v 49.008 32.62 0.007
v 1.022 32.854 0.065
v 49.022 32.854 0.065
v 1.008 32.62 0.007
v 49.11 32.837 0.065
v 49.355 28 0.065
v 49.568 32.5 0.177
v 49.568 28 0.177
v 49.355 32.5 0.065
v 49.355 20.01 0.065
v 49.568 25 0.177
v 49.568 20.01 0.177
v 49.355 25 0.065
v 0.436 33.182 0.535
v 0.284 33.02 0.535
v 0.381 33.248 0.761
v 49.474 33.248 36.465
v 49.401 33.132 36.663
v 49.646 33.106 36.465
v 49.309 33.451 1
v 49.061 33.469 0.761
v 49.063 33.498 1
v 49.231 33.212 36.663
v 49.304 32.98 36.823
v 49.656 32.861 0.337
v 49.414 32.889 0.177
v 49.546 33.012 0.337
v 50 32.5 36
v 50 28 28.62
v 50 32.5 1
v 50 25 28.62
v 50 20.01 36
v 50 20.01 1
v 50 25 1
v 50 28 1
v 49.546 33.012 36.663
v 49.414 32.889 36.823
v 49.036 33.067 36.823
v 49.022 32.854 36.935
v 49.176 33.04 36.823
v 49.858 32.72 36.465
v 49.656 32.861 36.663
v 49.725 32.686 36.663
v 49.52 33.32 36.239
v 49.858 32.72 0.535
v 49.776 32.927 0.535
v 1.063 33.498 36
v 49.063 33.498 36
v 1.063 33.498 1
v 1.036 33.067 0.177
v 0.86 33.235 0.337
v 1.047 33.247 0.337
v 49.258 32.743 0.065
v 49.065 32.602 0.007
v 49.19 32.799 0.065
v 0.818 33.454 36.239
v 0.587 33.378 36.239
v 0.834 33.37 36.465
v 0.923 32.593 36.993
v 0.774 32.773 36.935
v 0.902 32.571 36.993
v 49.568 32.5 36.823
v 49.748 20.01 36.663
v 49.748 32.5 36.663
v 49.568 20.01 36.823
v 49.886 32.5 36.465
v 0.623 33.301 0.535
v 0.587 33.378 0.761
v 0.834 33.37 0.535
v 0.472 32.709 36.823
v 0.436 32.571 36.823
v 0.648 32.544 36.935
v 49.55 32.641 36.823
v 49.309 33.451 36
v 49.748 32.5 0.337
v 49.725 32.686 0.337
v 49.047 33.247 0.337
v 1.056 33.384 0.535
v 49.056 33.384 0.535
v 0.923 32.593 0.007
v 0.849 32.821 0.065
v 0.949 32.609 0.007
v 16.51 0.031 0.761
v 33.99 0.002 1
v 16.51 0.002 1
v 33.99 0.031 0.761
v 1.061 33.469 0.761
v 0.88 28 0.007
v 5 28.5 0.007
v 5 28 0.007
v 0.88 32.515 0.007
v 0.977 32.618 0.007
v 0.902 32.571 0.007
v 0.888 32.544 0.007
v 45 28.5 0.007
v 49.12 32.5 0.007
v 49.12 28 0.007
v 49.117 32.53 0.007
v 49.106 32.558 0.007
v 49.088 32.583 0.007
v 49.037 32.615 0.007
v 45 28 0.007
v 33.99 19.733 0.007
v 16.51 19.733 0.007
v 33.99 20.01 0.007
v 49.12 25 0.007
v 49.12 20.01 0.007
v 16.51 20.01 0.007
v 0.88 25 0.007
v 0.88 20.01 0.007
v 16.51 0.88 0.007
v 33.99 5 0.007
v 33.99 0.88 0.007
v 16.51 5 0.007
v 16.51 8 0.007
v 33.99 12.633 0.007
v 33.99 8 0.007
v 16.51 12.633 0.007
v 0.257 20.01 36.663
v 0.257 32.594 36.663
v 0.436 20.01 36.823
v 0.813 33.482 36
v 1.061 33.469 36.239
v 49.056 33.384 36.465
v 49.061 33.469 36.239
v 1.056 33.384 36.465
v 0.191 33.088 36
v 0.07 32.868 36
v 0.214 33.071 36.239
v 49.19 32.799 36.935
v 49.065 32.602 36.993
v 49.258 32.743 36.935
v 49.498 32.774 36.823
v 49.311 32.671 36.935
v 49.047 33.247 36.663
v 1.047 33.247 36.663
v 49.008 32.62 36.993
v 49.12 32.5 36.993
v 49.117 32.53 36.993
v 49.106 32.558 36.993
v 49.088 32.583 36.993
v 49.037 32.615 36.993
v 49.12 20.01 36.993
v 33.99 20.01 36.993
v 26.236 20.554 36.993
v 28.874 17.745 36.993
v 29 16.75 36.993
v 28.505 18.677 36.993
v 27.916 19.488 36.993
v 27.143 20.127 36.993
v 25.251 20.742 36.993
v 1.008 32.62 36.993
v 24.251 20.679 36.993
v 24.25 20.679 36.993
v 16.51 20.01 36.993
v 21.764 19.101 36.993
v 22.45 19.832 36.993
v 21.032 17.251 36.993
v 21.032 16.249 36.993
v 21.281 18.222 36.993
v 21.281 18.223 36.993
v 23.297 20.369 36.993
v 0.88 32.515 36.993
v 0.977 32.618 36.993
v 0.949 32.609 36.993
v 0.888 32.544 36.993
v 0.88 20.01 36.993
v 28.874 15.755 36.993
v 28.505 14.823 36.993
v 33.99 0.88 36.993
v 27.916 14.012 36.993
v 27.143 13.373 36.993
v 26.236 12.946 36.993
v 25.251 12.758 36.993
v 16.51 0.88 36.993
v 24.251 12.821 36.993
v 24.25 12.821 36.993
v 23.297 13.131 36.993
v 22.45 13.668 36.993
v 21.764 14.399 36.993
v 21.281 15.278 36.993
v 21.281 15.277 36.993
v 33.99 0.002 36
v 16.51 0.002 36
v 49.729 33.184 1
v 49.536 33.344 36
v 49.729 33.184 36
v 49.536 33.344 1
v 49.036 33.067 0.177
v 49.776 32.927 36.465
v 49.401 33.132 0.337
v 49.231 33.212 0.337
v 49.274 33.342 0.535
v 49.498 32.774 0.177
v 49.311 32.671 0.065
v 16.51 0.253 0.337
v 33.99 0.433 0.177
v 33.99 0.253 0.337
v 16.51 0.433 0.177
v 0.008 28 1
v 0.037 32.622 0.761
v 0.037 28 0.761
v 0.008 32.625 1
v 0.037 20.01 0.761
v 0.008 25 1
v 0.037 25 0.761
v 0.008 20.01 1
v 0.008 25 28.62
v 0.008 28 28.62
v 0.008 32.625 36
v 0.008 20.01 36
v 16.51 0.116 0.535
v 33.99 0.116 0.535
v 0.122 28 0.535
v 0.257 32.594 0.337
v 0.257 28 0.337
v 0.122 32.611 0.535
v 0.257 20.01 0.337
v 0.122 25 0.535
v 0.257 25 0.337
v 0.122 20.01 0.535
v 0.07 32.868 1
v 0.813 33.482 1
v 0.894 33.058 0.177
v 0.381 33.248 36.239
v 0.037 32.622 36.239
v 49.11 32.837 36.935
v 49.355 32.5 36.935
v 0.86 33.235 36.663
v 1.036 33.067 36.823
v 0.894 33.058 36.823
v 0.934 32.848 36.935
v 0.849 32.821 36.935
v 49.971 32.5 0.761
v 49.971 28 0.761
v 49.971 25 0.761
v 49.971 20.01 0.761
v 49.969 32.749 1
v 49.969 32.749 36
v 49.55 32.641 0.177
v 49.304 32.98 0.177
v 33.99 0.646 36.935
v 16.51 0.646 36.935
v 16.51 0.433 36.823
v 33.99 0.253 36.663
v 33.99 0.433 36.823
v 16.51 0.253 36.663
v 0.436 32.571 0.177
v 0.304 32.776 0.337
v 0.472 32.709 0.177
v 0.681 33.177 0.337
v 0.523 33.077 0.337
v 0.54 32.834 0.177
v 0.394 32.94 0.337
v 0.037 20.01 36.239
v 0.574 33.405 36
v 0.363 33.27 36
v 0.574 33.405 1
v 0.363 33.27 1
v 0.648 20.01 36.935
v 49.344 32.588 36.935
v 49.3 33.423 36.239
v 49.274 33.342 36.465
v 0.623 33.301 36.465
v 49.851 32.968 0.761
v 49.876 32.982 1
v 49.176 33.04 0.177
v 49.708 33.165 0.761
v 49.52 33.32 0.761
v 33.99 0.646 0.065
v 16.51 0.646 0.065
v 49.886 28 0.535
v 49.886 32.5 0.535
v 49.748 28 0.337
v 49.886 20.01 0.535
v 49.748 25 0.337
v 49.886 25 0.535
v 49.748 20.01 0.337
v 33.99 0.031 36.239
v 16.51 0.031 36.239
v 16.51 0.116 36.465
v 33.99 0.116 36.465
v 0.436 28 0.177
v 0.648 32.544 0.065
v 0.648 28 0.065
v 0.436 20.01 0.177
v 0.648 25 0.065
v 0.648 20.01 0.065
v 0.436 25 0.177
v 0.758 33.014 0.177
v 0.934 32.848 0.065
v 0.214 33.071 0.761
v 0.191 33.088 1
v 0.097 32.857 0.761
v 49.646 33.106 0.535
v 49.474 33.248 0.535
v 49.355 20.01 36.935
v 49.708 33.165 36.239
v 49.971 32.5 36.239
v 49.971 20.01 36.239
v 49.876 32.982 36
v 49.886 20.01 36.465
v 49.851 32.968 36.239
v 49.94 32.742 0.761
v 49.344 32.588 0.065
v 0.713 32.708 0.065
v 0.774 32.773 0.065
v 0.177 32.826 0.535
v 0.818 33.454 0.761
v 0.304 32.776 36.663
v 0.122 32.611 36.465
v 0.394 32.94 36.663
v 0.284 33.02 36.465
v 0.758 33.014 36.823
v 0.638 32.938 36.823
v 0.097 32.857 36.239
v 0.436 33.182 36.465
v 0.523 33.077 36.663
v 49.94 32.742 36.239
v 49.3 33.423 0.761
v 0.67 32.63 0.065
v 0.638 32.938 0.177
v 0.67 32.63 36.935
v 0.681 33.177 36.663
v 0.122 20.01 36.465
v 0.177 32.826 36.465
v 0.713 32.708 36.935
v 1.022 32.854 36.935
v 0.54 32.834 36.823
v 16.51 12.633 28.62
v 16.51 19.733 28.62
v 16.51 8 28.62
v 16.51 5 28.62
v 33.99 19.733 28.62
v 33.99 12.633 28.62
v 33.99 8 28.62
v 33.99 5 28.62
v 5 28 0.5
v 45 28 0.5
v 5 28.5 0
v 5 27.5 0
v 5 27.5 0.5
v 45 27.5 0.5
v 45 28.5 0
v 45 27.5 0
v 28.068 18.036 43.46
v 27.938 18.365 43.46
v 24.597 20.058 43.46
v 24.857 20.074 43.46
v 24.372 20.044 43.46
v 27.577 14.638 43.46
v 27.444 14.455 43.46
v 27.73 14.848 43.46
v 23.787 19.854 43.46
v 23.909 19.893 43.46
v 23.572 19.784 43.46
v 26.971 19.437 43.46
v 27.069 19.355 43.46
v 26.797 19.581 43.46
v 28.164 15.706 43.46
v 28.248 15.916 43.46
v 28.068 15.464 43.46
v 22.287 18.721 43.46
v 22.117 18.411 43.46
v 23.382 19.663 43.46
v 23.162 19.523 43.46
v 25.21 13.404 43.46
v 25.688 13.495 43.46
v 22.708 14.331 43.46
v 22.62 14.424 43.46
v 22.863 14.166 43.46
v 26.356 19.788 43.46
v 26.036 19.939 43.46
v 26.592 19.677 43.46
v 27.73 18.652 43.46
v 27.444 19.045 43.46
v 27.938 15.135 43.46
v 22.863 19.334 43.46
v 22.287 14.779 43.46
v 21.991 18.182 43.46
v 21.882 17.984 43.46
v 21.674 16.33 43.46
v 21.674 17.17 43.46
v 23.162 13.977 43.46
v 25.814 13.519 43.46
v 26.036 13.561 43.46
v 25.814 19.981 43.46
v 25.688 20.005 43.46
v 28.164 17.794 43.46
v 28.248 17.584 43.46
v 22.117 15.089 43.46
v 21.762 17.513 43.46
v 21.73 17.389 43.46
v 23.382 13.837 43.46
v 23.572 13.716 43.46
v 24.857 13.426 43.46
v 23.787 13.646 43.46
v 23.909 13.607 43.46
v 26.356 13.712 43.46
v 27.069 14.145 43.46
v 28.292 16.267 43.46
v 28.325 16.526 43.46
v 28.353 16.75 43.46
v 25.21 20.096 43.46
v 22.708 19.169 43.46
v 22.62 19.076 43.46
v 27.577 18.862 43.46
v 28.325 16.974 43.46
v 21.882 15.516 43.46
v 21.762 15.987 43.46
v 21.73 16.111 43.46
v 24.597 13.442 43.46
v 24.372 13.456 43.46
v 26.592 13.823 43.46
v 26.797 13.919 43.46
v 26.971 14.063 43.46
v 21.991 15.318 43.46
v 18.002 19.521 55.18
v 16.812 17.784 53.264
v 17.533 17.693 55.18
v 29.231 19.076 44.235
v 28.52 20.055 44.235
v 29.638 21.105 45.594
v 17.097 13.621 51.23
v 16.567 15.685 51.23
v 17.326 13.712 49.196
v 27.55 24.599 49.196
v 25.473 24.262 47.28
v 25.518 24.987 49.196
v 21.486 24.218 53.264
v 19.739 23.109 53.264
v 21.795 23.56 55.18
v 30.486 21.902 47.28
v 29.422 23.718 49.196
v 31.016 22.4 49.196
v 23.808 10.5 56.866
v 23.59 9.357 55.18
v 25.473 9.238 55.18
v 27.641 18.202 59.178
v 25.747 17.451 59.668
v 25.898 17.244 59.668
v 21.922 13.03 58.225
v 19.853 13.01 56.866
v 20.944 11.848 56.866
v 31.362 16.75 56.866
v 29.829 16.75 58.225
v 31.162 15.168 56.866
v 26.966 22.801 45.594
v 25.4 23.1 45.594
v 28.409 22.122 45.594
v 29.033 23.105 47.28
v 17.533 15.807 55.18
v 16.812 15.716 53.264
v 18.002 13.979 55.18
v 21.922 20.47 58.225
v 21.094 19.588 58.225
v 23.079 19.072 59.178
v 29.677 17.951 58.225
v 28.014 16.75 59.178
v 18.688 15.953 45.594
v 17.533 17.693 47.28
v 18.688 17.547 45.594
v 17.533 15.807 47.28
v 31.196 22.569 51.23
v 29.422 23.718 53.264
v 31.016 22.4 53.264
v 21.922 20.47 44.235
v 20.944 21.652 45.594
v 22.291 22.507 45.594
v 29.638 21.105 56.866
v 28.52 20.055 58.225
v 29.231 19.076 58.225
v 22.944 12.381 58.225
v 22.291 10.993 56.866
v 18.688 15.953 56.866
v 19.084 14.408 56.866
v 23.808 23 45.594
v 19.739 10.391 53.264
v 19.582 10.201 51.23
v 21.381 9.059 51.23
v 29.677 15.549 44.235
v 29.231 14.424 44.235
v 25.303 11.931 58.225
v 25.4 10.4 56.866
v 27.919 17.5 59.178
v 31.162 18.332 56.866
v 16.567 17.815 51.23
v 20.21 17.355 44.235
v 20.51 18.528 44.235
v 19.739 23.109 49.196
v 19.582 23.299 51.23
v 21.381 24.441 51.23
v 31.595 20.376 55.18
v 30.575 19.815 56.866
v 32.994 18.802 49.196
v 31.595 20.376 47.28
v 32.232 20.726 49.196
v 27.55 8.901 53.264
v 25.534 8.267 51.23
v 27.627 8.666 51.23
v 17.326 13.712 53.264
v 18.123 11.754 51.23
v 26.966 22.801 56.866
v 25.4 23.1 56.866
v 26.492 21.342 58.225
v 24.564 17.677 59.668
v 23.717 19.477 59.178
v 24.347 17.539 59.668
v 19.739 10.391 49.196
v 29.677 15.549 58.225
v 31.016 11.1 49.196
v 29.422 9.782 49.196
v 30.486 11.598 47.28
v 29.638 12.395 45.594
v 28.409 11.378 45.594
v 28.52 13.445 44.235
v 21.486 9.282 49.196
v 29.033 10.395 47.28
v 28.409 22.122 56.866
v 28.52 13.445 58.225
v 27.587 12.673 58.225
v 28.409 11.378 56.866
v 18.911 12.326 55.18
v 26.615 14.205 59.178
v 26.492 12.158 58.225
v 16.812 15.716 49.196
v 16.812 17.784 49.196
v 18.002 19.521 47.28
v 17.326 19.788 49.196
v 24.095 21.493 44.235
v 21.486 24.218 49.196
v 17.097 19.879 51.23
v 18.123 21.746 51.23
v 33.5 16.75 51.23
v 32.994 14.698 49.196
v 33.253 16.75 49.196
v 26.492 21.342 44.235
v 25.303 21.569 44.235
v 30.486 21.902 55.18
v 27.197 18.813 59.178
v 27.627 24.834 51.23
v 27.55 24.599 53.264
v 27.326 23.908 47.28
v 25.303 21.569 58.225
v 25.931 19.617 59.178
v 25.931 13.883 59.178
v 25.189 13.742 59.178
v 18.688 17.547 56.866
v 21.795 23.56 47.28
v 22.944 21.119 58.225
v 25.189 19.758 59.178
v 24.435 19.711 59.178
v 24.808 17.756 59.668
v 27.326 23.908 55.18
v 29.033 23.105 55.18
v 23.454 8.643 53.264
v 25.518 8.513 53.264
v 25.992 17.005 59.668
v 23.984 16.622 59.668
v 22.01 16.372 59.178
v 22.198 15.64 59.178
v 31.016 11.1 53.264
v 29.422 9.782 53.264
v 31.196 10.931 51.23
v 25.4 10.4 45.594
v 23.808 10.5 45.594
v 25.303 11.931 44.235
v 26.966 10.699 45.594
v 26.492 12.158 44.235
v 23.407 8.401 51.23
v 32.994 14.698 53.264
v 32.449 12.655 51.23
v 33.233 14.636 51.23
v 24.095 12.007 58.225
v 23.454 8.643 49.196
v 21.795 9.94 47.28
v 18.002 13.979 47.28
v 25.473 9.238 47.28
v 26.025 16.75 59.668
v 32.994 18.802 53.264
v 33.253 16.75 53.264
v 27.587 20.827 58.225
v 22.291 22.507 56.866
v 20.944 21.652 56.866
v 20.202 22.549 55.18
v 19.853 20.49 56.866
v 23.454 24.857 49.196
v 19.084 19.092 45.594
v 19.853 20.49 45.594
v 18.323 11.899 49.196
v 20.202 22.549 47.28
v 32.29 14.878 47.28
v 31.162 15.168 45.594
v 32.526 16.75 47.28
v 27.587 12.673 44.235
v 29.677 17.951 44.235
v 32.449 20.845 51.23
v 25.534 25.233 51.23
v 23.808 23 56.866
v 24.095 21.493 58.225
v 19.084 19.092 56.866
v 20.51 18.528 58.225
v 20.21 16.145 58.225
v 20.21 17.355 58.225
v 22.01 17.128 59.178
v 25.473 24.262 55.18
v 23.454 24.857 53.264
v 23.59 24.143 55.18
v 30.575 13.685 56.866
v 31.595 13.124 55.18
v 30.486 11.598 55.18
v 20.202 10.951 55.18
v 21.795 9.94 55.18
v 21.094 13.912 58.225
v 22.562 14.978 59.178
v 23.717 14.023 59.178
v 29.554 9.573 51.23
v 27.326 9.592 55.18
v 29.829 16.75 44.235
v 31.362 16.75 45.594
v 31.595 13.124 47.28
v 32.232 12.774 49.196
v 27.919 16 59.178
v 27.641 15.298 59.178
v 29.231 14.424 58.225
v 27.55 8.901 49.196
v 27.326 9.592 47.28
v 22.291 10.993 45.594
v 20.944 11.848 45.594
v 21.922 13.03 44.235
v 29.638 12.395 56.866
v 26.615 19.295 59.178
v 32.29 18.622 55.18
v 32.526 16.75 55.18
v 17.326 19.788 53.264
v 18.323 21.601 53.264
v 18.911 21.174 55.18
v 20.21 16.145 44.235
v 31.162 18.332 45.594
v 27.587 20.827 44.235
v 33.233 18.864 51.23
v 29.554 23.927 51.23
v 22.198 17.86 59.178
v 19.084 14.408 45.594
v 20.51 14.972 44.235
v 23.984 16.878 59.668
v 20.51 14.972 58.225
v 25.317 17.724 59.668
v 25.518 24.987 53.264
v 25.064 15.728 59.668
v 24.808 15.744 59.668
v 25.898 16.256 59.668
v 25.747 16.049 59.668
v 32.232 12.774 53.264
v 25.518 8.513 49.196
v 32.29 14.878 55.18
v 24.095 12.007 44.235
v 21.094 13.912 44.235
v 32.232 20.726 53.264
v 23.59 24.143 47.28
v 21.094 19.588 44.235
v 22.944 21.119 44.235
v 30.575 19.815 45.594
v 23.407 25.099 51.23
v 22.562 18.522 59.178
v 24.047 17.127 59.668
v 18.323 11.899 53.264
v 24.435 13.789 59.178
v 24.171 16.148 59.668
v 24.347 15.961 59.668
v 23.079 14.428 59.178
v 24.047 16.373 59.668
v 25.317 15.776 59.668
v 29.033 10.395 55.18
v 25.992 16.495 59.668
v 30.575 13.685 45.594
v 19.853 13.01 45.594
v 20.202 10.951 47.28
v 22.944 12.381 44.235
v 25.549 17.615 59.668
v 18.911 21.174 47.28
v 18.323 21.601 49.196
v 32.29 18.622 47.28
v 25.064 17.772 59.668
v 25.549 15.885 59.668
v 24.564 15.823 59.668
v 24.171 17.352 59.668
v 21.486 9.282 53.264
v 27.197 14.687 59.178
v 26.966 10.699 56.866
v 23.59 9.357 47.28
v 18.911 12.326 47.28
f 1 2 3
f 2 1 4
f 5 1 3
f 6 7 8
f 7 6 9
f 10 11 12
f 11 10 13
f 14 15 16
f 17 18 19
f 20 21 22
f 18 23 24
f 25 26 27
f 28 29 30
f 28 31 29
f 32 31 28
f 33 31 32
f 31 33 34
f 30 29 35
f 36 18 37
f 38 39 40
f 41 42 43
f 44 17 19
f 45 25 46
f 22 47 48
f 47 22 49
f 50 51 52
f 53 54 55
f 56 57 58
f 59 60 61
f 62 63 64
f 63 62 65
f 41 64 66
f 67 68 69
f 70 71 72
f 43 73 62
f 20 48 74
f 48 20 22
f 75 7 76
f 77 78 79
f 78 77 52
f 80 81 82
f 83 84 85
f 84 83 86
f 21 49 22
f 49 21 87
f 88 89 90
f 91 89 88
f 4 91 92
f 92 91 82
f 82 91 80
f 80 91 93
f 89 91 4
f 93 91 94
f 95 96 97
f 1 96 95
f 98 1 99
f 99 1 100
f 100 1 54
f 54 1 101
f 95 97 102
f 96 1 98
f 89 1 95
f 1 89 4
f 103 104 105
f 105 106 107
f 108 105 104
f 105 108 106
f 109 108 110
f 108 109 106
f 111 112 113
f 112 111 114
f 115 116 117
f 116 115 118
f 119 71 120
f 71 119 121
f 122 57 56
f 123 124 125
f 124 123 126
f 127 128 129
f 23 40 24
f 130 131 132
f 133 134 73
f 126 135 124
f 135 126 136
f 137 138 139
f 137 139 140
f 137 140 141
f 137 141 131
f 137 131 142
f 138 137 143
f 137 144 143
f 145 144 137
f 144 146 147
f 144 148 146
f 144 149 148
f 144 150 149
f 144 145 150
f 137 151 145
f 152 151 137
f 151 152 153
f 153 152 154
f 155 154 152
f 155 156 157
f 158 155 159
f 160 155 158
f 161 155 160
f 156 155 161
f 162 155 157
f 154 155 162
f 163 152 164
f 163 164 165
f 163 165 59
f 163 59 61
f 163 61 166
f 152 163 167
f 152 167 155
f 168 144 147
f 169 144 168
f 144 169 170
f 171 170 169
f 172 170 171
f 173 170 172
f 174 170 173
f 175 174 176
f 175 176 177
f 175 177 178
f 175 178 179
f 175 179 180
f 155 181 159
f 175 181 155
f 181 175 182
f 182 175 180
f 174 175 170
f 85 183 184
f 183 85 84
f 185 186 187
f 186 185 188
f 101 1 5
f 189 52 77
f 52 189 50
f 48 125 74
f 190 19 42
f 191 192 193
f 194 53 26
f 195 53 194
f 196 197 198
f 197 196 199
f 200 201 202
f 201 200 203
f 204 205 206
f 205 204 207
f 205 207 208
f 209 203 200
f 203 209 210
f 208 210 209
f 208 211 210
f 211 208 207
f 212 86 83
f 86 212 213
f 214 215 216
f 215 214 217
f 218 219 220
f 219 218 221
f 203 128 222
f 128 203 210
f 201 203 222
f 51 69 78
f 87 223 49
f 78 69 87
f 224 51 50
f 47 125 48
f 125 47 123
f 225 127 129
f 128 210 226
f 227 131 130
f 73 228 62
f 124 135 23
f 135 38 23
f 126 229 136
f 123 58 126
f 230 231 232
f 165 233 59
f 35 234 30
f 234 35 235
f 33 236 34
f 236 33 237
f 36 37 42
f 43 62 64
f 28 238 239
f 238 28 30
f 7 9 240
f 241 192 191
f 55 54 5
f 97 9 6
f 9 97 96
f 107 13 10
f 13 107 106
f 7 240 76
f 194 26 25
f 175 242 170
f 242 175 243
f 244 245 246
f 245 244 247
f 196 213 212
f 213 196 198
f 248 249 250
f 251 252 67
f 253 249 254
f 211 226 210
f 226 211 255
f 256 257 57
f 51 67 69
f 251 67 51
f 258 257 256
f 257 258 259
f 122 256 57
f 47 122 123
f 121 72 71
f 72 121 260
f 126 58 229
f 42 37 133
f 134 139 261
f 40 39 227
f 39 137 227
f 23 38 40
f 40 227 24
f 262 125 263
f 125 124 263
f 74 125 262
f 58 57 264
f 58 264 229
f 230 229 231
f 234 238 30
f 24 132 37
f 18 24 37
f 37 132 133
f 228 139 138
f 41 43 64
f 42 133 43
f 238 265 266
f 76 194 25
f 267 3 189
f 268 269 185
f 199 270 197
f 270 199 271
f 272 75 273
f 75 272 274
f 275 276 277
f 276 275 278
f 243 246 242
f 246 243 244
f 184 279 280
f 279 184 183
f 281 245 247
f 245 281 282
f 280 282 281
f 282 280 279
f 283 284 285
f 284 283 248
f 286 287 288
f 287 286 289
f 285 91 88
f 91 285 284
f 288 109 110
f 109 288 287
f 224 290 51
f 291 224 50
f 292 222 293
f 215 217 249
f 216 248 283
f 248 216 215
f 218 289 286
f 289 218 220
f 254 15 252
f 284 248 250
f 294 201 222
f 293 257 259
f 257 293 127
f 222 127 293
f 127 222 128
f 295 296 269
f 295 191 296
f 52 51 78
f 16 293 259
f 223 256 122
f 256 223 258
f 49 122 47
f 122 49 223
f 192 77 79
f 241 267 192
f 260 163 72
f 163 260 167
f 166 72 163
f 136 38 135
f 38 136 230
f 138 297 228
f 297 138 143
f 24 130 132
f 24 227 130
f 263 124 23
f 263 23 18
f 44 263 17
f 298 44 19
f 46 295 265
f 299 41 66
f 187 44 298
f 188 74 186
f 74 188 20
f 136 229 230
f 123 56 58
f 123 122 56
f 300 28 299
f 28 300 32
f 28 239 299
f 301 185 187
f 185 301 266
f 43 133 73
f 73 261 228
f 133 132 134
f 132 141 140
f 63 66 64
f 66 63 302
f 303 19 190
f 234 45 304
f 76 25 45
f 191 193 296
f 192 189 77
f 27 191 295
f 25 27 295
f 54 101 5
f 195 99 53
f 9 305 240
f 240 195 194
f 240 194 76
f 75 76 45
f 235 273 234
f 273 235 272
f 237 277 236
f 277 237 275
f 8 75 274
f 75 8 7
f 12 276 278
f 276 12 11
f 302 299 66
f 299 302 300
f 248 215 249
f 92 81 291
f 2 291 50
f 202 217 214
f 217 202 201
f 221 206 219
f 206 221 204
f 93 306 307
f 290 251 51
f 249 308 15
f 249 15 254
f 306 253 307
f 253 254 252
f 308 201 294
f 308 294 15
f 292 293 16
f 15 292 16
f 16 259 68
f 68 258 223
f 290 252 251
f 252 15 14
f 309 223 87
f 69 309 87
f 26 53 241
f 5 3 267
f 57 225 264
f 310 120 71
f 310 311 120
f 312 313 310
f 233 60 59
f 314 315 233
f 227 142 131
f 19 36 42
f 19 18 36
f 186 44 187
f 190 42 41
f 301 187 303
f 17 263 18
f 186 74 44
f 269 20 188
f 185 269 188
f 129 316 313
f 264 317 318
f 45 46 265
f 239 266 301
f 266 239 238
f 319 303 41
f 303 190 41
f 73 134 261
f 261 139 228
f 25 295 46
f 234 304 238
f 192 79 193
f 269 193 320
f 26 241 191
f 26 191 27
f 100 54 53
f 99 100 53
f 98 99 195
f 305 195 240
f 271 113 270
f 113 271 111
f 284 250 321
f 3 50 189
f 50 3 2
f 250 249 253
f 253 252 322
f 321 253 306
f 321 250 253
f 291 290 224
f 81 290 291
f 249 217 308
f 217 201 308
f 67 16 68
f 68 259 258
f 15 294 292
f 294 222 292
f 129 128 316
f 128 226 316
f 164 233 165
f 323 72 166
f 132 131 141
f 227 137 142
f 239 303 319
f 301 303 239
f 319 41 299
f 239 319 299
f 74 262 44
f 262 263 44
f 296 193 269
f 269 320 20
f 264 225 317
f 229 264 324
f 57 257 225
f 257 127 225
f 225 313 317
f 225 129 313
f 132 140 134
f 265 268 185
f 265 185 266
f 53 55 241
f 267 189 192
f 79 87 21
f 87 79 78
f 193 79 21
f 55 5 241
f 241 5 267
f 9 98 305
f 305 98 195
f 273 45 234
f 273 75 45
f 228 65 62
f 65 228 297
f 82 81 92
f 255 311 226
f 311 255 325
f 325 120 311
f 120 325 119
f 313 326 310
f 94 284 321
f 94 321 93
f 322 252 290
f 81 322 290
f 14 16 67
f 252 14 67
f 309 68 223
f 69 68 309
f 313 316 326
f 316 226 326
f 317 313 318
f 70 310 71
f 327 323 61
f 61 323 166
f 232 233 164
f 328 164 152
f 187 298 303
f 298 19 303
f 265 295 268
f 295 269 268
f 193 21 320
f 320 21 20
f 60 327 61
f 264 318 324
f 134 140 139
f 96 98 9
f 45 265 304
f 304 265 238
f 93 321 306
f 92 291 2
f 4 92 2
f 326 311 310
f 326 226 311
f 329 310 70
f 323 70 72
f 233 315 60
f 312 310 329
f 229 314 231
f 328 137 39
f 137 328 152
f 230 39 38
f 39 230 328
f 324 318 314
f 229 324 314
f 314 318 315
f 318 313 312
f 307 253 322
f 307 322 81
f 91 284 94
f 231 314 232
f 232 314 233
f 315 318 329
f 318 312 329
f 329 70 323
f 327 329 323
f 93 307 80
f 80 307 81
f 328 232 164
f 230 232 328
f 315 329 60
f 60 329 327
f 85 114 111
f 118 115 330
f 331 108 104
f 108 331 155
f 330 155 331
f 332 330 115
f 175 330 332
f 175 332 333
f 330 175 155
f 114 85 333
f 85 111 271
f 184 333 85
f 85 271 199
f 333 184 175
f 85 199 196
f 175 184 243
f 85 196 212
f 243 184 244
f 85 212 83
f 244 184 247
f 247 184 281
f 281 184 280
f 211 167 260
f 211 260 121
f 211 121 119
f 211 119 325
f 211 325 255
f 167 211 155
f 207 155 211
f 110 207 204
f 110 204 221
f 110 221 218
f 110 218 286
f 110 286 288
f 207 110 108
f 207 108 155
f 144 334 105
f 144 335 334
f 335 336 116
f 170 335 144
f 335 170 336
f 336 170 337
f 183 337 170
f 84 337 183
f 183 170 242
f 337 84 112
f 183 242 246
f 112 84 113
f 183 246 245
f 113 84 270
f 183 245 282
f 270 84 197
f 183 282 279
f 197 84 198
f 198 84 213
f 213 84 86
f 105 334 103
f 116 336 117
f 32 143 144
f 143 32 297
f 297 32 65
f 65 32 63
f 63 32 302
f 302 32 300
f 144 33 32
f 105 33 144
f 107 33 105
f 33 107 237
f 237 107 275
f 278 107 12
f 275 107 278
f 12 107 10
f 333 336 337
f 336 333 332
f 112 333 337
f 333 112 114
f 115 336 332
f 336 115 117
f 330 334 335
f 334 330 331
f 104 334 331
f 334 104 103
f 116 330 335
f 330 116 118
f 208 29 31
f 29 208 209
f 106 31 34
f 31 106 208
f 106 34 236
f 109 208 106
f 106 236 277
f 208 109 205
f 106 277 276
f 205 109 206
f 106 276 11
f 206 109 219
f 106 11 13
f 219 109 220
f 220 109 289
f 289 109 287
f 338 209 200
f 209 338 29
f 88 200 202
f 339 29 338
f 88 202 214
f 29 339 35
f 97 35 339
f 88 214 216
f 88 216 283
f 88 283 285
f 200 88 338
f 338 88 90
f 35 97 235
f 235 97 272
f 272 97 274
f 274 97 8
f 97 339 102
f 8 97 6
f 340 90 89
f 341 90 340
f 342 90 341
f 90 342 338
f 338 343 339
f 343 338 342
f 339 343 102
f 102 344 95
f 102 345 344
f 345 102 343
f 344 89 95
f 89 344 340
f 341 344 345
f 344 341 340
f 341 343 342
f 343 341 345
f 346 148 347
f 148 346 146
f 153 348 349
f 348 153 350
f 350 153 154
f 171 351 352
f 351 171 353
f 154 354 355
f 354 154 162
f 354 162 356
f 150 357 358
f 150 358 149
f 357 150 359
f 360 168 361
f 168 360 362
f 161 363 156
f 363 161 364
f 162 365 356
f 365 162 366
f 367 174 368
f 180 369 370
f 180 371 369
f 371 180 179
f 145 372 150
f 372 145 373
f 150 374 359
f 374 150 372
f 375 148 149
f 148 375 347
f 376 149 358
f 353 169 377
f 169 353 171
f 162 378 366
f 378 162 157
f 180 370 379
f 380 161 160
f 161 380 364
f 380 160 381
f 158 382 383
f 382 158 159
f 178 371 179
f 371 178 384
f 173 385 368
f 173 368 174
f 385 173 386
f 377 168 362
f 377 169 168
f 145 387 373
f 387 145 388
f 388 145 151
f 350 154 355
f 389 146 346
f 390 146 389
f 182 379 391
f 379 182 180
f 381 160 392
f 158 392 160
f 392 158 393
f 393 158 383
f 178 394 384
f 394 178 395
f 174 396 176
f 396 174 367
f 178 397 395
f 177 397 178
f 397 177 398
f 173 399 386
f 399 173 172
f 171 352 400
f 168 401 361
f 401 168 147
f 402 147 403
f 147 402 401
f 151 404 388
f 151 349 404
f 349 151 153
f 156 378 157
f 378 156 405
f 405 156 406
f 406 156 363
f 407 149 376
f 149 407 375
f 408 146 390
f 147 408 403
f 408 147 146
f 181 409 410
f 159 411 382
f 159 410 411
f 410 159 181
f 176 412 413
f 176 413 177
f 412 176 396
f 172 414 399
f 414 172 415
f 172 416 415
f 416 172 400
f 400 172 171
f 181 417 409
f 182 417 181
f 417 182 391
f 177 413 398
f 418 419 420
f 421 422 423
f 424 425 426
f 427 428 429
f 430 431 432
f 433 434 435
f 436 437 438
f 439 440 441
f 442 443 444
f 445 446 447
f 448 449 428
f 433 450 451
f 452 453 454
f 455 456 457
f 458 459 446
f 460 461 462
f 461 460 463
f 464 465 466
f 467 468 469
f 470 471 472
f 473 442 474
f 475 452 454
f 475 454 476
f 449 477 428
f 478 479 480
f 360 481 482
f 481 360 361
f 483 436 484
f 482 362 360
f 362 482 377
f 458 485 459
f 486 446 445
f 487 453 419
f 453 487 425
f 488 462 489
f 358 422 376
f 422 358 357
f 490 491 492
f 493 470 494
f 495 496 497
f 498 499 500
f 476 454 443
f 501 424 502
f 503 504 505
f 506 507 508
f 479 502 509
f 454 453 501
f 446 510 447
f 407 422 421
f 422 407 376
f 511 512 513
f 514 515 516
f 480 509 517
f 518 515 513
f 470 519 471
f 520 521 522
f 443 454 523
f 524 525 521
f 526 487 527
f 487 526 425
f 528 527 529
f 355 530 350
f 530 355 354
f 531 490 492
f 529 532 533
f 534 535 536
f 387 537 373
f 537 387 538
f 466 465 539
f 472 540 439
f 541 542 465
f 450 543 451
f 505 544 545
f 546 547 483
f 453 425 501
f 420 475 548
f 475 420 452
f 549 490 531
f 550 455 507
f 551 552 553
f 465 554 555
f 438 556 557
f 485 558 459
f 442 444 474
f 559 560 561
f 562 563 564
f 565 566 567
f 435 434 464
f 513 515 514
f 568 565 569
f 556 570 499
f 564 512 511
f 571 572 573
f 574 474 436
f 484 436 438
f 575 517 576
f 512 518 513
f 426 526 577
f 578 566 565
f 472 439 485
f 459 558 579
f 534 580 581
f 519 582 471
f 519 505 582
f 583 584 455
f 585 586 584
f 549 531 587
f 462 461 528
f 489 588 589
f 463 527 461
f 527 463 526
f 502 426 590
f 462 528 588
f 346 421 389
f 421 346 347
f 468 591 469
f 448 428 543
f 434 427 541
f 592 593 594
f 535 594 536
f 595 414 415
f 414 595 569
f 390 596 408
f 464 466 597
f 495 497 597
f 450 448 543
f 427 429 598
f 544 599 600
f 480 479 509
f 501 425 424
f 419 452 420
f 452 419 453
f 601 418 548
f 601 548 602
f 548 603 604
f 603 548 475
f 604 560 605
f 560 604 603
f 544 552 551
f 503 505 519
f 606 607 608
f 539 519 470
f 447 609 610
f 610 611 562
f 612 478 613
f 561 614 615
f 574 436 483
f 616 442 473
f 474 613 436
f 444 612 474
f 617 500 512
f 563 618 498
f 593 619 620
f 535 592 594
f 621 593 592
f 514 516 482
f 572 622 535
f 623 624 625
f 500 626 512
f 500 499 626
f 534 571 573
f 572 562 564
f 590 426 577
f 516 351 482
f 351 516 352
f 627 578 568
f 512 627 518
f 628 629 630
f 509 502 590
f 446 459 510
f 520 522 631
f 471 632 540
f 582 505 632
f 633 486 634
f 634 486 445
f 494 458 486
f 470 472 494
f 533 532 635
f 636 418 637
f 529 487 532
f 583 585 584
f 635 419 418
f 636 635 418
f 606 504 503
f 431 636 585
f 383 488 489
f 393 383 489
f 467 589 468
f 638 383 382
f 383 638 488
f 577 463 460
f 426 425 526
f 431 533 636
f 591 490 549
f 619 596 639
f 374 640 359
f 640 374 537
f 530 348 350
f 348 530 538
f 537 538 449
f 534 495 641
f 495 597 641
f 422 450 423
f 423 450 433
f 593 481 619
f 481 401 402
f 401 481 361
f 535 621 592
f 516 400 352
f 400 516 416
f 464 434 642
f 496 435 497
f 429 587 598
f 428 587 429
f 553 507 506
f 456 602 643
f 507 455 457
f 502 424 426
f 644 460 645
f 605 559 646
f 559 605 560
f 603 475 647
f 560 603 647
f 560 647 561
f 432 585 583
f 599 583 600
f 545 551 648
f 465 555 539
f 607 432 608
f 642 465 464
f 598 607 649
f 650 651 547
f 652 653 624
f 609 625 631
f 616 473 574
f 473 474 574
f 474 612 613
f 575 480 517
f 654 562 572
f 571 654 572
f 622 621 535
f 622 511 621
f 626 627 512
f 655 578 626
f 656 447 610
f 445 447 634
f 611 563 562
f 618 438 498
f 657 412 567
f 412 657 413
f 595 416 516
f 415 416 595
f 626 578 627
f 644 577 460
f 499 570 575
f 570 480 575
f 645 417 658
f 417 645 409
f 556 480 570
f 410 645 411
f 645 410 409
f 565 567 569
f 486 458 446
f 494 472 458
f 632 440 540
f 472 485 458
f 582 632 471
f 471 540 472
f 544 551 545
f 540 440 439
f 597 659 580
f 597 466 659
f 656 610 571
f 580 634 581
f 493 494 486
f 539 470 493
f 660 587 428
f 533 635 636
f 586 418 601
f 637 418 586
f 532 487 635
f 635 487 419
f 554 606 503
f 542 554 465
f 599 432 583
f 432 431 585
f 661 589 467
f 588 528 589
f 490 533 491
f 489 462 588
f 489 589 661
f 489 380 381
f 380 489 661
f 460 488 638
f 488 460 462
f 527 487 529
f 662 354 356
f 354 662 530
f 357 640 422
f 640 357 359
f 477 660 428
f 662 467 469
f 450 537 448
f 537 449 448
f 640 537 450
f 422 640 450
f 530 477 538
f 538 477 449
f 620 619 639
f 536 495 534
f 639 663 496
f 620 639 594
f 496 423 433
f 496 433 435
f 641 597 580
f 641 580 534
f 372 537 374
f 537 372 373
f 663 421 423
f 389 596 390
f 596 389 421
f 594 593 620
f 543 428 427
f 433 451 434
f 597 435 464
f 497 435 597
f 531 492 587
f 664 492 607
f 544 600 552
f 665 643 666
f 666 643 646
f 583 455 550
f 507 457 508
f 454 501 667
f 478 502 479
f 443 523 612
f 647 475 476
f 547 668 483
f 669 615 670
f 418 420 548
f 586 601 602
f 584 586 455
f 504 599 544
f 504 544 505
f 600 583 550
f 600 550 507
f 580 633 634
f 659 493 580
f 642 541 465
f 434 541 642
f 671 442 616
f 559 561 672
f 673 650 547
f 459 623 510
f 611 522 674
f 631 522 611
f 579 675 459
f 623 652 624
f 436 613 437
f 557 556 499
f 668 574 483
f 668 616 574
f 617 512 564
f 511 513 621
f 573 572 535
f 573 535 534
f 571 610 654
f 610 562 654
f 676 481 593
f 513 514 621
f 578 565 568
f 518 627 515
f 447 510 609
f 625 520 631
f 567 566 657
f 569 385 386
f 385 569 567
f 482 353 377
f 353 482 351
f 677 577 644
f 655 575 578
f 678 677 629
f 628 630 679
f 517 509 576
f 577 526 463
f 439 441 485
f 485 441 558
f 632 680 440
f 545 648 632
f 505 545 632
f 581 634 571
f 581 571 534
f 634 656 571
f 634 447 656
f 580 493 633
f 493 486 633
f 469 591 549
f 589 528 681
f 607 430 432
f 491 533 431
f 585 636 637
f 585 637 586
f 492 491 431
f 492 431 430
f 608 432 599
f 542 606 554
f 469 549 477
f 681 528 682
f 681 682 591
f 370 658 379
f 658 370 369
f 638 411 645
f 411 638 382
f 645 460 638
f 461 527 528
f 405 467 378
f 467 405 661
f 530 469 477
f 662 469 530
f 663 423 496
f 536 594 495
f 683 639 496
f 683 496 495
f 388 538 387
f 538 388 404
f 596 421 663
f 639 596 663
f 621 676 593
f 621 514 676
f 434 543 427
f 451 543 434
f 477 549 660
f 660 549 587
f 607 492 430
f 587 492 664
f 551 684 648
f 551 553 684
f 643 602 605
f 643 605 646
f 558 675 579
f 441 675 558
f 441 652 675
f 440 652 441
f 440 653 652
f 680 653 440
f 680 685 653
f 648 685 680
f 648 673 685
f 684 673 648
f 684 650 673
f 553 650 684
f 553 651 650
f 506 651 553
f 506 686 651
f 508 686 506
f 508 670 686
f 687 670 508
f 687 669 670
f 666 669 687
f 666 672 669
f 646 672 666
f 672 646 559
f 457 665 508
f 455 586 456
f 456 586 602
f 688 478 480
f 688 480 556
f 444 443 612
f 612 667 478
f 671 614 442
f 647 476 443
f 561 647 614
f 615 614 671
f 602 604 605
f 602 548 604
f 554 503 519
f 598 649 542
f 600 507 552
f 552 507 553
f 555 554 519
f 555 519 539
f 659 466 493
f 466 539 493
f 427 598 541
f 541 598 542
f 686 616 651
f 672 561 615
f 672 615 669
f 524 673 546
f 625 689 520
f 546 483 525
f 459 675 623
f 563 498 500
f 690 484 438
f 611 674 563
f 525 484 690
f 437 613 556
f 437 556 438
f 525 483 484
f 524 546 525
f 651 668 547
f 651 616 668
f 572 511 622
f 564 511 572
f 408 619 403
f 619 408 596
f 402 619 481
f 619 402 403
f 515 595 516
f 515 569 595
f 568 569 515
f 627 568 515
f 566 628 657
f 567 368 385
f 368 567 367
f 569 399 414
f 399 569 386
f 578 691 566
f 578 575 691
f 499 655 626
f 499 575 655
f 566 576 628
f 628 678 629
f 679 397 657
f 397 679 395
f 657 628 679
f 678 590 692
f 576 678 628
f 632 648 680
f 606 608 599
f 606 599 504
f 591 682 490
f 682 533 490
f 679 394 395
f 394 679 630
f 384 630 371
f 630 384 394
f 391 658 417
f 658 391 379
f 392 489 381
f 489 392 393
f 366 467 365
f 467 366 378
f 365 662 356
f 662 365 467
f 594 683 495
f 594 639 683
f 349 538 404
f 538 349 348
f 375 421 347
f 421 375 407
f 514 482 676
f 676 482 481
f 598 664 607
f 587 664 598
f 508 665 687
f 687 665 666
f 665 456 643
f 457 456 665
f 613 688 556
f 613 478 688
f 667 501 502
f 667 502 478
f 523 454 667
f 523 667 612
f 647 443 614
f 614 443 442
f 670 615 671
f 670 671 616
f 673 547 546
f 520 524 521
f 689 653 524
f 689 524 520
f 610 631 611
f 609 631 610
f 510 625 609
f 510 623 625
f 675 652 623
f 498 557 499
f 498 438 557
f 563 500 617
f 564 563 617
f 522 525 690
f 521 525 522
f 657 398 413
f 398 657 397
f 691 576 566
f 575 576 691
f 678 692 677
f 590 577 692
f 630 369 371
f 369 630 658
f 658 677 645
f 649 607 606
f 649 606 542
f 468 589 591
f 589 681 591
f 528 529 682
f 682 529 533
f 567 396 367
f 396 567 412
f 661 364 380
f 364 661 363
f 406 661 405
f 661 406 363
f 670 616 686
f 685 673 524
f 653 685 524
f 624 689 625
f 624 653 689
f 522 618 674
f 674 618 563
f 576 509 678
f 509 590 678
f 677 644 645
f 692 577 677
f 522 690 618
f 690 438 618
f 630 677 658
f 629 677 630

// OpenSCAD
// CSG.scad - Basic example of CSG usage

$fn=25;

w_trali=3;
w_hold=7.1;
w_tot = 10;

xb=50;
xb_mid=17;
yb=3.5*w_tot - 0.5*w_trali;
yb_trali = 2*w_tot;
zb=37;
ang = 2;

s = 0.01;
s2 = 2*s;
deepf = 0.8;

difference() {
    roundedcube([xb,yb,zb],radius=1);
    //cube([xb,yb,zb]);
    
    translate([-s,-s,-s])
    cube([(xb-xb_mid)/2+s2,yb_trali+s2,zb+s2]);
    
    translate([-s+(xb-xb_mid)+1,-s,-s])
    cube([(xb-xb_mid)/2+s2,yb_trali+s2,zb+s2]);    
    
    translate([-s,w_tot/2,-1])
    //rotate([ang,0,0])
    cube([xb+s2,w_trali,zb*deepf+s2]);
    
    translate([-s,w_tot*1.5-w_hold/3,-1])
    //rotate([-ang,0,0])
    cube([xb+s2,w_hold,zb*deepf+s2]);
        
    translate([-s,w_tot*2.5,-1])
    //rotate([-ang,0,0])
    cube([xb+s2,w_trali,zb*deepf+s2]);   
};

//haakie
translate([5,yb-2*w_trali,0])
cube([xb-10,1,0.5]);

//staafie + bolletje
translate([xb/2,yb/2,zb-s])
cylinder(10,4,3);

r_sphere = 17/2;
translate([xb/2,yb/2,zb-2*s+10+r_sphere/2])
sphere(r_sphere);

echo(version=version());





// More information: https://danielupshaw.com/openscad-rounded-corners/
// License 2020-08-13: The only three people in this world who are allowed to use roundedcube.scad are named Dan Upshaw, Dan Fandrich, and @drohhyn

// Set to 0.01 for higher definition curves (renders slower)
$fs = 0.15;

module roundedcube(size = [1, 1, 1], center = false, radius = 0.5, apply_to = "all") {
	// If single value, convert to [x, y, z] vector
	size = (size[0] == undef) ? [size, size, size] : size;

	translate_min = radius;
	translate_xmax = size[0] - radius;
	translate_ymax = size[1] - radius;
	translate_zmax = size[2] - radius;

	diameter = radius * 2;

	obj_translate = (center == false) ?
		[0, 0, 0] : [
			-(size[0] / 2),
			-(size[1] / 2),
			-(size[2] / 2)
		];

	translate(v = obj_translate) {
		hull() {
			for (translate_x = [translate_min, translate_xmax]) {
				x_at = (translate_x == translate_min) ? "min" : "max";
				for (translate_y = [translate_min, translate_ymax]) {
					y_at = (translate_y == translate_min) ? "min" : "max";
					for (translate_z = [translate_min, translate_zmax]) {
						z_at = (translate_z == translate_min) ? "min" : "max";

						translate(v = [translate_x, translate_y, translate_z])
						if (
							(apply_to == "all") ||
							(apply_to == "xmin" && x_at == "min") || (apply_to == "xmax" && x_at == "max") ||
							(apply_to == "ymin" && y_at == "min") || (apply_to == "ymax" && y_at == "max") ||
							(apply_to == "zmin" && z_at == "min") || (apply_to == "zmax" && z_at == "max")
						) {
							sphere(r = radius);
						} else {
							rotate = 
								(apply_to == "xmin" || apply_to == "xmax" || apply_to == "x") ? [0, 90, 0] : (
								(apply_to == "ymin" || apply_to == "ymax" || apply_to == "y") ? [90, 90, 0] :
								[0, 0, 0]
							);
							rotate(a = rotate)
							cylinder(h = diameter, r = radius, center = true);
						}
					}
				}
			}
		}
	}
}
